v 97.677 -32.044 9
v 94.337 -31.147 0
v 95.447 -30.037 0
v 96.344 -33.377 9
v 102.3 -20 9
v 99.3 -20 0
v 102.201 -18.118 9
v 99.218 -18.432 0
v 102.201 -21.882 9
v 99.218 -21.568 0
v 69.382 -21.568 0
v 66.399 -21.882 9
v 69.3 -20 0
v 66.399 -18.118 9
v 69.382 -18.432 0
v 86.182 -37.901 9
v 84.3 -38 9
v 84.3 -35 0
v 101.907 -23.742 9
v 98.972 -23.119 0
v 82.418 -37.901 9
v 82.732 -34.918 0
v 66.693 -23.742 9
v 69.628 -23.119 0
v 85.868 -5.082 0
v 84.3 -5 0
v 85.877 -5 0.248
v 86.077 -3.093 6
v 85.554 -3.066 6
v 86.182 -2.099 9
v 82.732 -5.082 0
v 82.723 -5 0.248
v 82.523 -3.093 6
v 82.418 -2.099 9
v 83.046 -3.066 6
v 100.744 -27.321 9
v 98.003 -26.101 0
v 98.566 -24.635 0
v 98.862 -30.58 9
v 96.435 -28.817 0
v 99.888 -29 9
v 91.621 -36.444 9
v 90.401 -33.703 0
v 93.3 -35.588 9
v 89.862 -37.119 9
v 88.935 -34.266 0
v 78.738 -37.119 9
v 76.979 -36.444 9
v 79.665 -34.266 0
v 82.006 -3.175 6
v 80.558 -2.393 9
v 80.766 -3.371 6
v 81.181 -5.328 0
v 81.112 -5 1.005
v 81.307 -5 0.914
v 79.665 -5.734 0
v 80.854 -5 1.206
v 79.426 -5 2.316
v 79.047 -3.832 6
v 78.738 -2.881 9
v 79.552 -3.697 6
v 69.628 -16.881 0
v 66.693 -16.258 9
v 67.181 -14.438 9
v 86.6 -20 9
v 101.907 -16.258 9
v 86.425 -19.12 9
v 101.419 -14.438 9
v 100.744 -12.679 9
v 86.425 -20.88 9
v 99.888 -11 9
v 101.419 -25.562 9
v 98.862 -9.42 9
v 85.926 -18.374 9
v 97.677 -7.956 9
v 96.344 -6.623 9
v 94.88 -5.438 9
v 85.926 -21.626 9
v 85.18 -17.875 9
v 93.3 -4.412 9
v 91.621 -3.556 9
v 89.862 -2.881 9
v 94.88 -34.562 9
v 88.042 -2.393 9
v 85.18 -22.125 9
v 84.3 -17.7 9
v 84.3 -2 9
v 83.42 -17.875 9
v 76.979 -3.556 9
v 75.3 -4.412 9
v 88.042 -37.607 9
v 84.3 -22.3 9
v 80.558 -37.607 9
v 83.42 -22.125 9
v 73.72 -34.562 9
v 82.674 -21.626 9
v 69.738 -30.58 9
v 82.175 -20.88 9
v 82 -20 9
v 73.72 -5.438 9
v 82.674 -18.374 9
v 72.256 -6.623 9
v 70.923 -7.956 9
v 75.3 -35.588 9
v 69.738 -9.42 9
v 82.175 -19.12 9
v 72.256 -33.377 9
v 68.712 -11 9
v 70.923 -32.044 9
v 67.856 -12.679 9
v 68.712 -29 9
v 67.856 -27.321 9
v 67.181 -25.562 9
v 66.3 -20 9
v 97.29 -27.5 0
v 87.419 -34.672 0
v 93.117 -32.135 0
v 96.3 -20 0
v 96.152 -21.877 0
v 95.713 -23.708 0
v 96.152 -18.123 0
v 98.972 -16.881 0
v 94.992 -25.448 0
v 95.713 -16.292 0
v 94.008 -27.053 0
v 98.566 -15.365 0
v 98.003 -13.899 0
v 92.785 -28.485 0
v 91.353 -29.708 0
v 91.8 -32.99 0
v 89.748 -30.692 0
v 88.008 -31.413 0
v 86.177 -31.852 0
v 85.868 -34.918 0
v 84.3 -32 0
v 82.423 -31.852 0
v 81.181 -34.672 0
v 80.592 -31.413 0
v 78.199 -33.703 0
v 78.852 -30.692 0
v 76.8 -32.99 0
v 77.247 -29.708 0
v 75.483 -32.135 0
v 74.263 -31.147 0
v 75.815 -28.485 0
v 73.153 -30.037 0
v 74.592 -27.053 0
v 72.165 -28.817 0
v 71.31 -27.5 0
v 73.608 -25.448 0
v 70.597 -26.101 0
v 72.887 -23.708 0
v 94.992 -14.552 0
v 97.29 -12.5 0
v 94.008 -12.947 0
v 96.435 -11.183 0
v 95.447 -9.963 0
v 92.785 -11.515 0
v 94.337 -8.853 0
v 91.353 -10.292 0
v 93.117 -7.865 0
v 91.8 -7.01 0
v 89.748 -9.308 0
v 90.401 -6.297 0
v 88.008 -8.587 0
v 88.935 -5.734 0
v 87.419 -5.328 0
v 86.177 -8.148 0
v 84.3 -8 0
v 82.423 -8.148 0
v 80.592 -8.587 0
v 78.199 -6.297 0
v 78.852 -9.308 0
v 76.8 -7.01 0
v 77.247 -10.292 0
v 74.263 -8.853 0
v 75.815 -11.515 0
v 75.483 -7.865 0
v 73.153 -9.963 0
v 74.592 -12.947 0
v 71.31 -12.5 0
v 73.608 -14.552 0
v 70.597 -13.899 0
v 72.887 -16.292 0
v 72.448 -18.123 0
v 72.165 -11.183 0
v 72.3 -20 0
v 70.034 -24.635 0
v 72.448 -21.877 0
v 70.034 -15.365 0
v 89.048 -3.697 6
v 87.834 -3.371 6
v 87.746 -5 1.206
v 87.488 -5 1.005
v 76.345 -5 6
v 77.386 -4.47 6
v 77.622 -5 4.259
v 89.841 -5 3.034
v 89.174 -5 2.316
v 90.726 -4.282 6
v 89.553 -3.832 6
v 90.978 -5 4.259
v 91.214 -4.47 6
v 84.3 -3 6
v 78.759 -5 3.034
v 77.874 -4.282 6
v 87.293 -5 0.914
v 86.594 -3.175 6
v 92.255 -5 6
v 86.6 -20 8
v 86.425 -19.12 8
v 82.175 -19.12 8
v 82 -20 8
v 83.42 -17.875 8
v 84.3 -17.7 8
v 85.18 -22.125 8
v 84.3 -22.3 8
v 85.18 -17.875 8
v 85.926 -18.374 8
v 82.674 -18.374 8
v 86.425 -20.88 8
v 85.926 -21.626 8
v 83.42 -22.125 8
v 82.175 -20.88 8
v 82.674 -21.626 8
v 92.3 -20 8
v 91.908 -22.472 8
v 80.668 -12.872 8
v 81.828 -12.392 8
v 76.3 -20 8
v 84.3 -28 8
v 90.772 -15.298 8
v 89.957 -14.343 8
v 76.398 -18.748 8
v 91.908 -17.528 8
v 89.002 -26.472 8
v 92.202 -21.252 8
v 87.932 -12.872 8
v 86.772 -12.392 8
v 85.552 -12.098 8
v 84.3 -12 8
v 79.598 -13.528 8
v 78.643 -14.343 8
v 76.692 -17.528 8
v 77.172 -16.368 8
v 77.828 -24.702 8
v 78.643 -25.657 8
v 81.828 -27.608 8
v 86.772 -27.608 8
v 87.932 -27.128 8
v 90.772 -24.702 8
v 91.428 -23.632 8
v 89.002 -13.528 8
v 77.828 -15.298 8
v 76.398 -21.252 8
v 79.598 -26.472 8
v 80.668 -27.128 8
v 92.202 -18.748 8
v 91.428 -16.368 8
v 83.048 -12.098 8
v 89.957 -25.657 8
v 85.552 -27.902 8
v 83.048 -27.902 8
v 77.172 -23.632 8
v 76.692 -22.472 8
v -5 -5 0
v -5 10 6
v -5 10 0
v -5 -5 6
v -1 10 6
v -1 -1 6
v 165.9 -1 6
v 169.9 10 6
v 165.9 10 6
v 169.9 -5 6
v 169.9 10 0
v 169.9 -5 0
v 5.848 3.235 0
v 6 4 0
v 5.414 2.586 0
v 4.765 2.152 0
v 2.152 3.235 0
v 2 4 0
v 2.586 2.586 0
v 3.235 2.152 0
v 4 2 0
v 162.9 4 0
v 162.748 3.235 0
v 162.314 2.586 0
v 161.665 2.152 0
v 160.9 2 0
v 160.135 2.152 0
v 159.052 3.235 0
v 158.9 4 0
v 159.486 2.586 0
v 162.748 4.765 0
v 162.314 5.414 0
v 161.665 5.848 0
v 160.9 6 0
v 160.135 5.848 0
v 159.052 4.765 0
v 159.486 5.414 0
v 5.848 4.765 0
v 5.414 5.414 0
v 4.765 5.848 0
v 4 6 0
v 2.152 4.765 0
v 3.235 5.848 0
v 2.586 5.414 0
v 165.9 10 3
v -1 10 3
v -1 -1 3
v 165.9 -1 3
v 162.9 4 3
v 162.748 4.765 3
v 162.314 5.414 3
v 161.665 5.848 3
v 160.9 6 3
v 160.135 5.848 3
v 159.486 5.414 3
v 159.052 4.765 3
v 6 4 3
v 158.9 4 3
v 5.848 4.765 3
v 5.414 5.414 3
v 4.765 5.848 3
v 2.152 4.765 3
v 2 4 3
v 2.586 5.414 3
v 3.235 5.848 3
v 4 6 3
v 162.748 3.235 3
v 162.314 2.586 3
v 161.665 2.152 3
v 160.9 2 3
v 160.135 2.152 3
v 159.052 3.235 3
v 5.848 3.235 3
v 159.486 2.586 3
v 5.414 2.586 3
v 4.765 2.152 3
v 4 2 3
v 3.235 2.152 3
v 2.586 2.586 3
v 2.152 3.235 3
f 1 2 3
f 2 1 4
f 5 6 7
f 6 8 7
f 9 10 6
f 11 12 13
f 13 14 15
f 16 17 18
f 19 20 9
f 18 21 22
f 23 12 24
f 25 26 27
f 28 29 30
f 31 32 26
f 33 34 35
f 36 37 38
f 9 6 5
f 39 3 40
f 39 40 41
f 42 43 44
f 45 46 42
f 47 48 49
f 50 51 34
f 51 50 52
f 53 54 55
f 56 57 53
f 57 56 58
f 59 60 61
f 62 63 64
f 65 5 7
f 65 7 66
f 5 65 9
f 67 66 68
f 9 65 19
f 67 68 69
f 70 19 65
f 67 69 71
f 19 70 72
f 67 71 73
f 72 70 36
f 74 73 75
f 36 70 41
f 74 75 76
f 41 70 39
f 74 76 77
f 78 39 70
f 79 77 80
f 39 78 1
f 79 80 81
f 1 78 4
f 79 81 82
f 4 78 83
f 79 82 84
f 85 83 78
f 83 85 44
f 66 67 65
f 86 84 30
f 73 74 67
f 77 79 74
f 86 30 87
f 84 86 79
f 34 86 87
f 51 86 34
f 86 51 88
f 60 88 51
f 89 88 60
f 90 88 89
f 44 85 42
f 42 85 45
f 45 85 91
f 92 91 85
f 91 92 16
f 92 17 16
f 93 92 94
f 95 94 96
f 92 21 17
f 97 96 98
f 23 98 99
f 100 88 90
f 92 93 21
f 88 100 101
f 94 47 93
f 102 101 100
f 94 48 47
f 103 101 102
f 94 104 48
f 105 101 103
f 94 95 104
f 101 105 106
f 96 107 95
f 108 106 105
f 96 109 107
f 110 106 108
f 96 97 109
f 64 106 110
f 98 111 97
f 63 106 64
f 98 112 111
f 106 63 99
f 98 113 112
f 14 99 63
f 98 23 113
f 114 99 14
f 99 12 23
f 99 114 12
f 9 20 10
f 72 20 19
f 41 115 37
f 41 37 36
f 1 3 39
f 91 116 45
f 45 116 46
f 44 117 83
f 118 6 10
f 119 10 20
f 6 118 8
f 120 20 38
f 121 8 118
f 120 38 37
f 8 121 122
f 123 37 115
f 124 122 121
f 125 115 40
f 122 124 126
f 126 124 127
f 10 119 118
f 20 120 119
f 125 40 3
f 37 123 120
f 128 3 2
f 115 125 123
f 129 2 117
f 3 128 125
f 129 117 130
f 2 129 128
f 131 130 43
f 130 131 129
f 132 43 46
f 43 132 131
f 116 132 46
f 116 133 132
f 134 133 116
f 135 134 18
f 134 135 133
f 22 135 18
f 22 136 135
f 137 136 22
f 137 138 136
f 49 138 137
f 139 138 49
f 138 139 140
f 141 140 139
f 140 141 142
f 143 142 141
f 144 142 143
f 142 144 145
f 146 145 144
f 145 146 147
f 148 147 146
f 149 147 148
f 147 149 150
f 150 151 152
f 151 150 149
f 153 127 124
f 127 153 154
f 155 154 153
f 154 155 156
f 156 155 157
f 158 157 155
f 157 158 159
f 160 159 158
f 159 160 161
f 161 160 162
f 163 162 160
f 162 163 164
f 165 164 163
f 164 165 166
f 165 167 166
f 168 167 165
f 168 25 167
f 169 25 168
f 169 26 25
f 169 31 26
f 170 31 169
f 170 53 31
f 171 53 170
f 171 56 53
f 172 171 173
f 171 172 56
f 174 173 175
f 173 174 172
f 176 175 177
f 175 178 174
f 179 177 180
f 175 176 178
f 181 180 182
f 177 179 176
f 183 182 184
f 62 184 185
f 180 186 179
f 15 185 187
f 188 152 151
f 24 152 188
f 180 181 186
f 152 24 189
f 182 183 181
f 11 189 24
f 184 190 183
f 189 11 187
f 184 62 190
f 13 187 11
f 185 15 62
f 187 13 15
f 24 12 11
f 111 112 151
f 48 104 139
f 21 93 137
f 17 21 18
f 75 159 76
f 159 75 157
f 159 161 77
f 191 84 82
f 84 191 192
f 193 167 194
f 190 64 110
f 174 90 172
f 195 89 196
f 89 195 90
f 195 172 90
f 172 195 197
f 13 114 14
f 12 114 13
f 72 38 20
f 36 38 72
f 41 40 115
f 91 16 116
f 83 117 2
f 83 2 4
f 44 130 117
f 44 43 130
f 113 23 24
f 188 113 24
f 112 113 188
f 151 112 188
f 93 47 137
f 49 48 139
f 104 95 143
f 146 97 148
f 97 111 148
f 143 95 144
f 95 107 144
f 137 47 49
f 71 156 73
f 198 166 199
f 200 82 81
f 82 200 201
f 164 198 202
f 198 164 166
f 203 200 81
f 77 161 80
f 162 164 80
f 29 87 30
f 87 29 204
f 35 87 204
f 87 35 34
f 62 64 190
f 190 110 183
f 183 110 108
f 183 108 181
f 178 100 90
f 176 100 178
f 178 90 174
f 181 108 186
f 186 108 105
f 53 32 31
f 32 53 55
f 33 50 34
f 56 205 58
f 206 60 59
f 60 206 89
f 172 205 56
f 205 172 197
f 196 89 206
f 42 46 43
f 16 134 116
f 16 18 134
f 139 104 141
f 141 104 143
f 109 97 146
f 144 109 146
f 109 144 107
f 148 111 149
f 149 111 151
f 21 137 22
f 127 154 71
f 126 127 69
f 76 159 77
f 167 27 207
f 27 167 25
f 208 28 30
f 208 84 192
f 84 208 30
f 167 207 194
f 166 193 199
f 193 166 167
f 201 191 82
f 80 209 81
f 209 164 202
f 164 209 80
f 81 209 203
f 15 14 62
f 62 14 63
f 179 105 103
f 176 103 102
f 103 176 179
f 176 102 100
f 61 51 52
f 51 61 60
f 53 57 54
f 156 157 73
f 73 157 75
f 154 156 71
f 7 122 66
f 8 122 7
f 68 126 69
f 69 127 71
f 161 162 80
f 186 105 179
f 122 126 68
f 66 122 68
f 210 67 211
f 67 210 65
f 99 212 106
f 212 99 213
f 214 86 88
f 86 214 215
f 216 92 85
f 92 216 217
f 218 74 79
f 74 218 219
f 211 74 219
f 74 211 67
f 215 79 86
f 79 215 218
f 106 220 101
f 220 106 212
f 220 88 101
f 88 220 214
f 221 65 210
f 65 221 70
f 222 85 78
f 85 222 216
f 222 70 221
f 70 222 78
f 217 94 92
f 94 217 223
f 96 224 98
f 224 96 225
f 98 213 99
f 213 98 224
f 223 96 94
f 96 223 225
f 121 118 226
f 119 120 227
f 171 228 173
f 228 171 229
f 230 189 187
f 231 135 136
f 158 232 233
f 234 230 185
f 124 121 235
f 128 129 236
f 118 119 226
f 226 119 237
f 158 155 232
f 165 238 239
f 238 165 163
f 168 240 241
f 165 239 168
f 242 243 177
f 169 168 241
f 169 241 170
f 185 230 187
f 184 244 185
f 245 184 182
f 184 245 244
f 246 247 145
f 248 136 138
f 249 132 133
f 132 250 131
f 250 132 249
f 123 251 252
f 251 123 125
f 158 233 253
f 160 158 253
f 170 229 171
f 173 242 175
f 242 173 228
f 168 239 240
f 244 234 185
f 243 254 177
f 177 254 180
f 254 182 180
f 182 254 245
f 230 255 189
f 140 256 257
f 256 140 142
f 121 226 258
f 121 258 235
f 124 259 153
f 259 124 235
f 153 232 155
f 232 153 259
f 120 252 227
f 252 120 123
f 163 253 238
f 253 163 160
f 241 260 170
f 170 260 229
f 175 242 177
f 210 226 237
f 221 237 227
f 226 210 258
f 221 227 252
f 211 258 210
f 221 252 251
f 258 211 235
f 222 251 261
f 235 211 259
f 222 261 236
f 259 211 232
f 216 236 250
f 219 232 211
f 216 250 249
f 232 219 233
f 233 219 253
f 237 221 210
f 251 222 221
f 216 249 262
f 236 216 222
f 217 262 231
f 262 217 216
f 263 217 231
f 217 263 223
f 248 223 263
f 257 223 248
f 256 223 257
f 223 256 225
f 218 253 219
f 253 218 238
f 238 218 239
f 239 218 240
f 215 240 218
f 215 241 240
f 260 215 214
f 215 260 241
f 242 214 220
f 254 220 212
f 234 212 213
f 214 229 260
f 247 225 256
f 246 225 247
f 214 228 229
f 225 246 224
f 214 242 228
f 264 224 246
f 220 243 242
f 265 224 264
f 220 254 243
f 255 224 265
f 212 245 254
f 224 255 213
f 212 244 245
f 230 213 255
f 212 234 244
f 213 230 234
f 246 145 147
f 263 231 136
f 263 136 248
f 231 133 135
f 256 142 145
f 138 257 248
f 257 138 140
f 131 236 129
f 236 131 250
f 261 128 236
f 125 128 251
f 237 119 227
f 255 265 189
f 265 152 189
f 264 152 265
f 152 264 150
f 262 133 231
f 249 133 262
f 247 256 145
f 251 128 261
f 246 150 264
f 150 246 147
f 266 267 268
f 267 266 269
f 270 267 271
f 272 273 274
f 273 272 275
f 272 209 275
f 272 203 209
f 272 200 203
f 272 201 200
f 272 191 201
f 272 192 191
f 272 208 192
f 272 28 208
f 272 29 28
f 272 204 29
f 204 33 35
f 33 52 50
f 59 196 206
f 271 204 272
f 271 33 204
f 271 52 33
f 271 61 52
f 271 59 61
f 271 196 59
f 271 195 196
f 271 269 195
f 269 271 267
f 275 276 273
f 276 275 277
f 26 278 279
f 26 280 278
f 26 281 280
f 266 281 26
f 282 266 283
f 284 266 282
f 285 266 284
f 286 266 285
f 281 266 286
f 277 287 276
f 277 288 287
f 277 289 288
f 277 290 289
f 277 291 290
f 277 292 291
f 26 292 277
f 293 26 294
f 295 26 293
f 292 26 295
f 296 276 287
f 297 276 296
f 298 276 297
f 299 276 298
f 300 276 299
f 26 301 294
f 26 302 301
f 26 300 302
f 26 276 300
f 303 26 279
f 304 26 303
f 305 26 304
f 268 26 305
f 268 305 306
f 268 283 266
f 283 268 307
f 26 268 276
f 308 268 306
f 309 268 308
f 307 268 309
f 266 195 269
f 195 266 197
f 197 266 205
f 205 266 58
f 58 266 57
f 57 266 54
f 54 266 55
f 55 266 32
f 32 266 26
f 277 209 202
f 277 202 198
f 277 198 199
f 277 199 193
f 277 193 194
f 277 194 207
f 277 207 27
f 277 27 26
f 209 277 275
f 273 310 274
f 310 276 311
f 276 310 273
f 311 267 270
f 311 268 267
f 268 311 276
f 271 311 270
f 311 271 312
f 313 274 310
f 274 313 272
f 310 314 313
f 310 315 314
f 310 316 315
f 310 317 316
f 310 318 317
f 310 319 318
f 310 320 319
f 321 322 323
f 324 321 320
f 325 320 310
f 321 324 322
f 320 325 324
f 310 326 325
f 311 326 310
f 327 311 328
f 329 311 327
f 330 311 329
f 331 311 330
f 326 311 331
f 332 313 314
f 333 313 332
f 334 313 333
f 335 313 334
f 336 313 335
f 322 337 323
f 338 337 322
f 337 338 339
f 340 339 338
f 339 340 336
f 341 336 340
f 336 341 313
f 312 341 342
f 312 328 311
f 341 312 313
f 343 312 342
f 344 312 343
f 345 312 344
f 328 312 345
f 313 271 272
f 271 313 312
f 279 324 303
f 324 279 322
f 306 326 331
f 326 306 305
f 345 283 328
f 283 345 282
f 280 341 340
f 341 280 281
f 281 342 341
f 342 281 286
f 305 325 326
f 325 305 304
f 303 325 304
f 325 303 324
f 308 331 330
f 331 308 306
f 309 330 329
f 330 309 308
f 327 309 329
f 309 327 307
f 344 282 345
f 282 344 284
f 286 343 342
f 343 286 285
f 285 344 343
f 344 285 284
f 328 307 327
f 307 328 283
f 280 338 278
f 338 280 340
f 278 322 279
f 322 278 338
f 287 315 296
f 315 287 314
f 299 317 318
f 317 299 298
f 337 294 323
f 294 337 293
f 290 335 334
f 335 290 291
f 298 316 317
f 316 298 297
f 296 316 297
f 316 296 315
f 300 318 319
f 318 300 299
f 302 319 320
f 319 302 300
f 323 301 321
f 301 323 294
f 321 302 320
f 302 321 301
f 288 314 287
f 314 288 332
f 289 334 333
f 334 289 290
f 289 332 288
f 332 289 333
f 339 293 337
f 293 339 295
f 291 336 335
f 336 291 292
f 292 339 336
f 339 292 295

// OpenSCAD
difference() {
	translate([-5,-5,0])
		cube([174.9,15,6]);

	translate([-1,-1,3])
		cube([166.9,15,3]);

	//holes
	translate([4,4,0])
		cylinder(10,2,2, $fn=16);
	translate([160.9,4,0])
		cylinder(10,2,2, $fn=16);
}//difference

translate([84.3,-20,0])
difference(){
	cylinder(9,15,18,$fn=60);
	cylinder(15,2.3,2.3,$fn=16);
	cylinder(8,12,8,$fn=40);
}//difference
